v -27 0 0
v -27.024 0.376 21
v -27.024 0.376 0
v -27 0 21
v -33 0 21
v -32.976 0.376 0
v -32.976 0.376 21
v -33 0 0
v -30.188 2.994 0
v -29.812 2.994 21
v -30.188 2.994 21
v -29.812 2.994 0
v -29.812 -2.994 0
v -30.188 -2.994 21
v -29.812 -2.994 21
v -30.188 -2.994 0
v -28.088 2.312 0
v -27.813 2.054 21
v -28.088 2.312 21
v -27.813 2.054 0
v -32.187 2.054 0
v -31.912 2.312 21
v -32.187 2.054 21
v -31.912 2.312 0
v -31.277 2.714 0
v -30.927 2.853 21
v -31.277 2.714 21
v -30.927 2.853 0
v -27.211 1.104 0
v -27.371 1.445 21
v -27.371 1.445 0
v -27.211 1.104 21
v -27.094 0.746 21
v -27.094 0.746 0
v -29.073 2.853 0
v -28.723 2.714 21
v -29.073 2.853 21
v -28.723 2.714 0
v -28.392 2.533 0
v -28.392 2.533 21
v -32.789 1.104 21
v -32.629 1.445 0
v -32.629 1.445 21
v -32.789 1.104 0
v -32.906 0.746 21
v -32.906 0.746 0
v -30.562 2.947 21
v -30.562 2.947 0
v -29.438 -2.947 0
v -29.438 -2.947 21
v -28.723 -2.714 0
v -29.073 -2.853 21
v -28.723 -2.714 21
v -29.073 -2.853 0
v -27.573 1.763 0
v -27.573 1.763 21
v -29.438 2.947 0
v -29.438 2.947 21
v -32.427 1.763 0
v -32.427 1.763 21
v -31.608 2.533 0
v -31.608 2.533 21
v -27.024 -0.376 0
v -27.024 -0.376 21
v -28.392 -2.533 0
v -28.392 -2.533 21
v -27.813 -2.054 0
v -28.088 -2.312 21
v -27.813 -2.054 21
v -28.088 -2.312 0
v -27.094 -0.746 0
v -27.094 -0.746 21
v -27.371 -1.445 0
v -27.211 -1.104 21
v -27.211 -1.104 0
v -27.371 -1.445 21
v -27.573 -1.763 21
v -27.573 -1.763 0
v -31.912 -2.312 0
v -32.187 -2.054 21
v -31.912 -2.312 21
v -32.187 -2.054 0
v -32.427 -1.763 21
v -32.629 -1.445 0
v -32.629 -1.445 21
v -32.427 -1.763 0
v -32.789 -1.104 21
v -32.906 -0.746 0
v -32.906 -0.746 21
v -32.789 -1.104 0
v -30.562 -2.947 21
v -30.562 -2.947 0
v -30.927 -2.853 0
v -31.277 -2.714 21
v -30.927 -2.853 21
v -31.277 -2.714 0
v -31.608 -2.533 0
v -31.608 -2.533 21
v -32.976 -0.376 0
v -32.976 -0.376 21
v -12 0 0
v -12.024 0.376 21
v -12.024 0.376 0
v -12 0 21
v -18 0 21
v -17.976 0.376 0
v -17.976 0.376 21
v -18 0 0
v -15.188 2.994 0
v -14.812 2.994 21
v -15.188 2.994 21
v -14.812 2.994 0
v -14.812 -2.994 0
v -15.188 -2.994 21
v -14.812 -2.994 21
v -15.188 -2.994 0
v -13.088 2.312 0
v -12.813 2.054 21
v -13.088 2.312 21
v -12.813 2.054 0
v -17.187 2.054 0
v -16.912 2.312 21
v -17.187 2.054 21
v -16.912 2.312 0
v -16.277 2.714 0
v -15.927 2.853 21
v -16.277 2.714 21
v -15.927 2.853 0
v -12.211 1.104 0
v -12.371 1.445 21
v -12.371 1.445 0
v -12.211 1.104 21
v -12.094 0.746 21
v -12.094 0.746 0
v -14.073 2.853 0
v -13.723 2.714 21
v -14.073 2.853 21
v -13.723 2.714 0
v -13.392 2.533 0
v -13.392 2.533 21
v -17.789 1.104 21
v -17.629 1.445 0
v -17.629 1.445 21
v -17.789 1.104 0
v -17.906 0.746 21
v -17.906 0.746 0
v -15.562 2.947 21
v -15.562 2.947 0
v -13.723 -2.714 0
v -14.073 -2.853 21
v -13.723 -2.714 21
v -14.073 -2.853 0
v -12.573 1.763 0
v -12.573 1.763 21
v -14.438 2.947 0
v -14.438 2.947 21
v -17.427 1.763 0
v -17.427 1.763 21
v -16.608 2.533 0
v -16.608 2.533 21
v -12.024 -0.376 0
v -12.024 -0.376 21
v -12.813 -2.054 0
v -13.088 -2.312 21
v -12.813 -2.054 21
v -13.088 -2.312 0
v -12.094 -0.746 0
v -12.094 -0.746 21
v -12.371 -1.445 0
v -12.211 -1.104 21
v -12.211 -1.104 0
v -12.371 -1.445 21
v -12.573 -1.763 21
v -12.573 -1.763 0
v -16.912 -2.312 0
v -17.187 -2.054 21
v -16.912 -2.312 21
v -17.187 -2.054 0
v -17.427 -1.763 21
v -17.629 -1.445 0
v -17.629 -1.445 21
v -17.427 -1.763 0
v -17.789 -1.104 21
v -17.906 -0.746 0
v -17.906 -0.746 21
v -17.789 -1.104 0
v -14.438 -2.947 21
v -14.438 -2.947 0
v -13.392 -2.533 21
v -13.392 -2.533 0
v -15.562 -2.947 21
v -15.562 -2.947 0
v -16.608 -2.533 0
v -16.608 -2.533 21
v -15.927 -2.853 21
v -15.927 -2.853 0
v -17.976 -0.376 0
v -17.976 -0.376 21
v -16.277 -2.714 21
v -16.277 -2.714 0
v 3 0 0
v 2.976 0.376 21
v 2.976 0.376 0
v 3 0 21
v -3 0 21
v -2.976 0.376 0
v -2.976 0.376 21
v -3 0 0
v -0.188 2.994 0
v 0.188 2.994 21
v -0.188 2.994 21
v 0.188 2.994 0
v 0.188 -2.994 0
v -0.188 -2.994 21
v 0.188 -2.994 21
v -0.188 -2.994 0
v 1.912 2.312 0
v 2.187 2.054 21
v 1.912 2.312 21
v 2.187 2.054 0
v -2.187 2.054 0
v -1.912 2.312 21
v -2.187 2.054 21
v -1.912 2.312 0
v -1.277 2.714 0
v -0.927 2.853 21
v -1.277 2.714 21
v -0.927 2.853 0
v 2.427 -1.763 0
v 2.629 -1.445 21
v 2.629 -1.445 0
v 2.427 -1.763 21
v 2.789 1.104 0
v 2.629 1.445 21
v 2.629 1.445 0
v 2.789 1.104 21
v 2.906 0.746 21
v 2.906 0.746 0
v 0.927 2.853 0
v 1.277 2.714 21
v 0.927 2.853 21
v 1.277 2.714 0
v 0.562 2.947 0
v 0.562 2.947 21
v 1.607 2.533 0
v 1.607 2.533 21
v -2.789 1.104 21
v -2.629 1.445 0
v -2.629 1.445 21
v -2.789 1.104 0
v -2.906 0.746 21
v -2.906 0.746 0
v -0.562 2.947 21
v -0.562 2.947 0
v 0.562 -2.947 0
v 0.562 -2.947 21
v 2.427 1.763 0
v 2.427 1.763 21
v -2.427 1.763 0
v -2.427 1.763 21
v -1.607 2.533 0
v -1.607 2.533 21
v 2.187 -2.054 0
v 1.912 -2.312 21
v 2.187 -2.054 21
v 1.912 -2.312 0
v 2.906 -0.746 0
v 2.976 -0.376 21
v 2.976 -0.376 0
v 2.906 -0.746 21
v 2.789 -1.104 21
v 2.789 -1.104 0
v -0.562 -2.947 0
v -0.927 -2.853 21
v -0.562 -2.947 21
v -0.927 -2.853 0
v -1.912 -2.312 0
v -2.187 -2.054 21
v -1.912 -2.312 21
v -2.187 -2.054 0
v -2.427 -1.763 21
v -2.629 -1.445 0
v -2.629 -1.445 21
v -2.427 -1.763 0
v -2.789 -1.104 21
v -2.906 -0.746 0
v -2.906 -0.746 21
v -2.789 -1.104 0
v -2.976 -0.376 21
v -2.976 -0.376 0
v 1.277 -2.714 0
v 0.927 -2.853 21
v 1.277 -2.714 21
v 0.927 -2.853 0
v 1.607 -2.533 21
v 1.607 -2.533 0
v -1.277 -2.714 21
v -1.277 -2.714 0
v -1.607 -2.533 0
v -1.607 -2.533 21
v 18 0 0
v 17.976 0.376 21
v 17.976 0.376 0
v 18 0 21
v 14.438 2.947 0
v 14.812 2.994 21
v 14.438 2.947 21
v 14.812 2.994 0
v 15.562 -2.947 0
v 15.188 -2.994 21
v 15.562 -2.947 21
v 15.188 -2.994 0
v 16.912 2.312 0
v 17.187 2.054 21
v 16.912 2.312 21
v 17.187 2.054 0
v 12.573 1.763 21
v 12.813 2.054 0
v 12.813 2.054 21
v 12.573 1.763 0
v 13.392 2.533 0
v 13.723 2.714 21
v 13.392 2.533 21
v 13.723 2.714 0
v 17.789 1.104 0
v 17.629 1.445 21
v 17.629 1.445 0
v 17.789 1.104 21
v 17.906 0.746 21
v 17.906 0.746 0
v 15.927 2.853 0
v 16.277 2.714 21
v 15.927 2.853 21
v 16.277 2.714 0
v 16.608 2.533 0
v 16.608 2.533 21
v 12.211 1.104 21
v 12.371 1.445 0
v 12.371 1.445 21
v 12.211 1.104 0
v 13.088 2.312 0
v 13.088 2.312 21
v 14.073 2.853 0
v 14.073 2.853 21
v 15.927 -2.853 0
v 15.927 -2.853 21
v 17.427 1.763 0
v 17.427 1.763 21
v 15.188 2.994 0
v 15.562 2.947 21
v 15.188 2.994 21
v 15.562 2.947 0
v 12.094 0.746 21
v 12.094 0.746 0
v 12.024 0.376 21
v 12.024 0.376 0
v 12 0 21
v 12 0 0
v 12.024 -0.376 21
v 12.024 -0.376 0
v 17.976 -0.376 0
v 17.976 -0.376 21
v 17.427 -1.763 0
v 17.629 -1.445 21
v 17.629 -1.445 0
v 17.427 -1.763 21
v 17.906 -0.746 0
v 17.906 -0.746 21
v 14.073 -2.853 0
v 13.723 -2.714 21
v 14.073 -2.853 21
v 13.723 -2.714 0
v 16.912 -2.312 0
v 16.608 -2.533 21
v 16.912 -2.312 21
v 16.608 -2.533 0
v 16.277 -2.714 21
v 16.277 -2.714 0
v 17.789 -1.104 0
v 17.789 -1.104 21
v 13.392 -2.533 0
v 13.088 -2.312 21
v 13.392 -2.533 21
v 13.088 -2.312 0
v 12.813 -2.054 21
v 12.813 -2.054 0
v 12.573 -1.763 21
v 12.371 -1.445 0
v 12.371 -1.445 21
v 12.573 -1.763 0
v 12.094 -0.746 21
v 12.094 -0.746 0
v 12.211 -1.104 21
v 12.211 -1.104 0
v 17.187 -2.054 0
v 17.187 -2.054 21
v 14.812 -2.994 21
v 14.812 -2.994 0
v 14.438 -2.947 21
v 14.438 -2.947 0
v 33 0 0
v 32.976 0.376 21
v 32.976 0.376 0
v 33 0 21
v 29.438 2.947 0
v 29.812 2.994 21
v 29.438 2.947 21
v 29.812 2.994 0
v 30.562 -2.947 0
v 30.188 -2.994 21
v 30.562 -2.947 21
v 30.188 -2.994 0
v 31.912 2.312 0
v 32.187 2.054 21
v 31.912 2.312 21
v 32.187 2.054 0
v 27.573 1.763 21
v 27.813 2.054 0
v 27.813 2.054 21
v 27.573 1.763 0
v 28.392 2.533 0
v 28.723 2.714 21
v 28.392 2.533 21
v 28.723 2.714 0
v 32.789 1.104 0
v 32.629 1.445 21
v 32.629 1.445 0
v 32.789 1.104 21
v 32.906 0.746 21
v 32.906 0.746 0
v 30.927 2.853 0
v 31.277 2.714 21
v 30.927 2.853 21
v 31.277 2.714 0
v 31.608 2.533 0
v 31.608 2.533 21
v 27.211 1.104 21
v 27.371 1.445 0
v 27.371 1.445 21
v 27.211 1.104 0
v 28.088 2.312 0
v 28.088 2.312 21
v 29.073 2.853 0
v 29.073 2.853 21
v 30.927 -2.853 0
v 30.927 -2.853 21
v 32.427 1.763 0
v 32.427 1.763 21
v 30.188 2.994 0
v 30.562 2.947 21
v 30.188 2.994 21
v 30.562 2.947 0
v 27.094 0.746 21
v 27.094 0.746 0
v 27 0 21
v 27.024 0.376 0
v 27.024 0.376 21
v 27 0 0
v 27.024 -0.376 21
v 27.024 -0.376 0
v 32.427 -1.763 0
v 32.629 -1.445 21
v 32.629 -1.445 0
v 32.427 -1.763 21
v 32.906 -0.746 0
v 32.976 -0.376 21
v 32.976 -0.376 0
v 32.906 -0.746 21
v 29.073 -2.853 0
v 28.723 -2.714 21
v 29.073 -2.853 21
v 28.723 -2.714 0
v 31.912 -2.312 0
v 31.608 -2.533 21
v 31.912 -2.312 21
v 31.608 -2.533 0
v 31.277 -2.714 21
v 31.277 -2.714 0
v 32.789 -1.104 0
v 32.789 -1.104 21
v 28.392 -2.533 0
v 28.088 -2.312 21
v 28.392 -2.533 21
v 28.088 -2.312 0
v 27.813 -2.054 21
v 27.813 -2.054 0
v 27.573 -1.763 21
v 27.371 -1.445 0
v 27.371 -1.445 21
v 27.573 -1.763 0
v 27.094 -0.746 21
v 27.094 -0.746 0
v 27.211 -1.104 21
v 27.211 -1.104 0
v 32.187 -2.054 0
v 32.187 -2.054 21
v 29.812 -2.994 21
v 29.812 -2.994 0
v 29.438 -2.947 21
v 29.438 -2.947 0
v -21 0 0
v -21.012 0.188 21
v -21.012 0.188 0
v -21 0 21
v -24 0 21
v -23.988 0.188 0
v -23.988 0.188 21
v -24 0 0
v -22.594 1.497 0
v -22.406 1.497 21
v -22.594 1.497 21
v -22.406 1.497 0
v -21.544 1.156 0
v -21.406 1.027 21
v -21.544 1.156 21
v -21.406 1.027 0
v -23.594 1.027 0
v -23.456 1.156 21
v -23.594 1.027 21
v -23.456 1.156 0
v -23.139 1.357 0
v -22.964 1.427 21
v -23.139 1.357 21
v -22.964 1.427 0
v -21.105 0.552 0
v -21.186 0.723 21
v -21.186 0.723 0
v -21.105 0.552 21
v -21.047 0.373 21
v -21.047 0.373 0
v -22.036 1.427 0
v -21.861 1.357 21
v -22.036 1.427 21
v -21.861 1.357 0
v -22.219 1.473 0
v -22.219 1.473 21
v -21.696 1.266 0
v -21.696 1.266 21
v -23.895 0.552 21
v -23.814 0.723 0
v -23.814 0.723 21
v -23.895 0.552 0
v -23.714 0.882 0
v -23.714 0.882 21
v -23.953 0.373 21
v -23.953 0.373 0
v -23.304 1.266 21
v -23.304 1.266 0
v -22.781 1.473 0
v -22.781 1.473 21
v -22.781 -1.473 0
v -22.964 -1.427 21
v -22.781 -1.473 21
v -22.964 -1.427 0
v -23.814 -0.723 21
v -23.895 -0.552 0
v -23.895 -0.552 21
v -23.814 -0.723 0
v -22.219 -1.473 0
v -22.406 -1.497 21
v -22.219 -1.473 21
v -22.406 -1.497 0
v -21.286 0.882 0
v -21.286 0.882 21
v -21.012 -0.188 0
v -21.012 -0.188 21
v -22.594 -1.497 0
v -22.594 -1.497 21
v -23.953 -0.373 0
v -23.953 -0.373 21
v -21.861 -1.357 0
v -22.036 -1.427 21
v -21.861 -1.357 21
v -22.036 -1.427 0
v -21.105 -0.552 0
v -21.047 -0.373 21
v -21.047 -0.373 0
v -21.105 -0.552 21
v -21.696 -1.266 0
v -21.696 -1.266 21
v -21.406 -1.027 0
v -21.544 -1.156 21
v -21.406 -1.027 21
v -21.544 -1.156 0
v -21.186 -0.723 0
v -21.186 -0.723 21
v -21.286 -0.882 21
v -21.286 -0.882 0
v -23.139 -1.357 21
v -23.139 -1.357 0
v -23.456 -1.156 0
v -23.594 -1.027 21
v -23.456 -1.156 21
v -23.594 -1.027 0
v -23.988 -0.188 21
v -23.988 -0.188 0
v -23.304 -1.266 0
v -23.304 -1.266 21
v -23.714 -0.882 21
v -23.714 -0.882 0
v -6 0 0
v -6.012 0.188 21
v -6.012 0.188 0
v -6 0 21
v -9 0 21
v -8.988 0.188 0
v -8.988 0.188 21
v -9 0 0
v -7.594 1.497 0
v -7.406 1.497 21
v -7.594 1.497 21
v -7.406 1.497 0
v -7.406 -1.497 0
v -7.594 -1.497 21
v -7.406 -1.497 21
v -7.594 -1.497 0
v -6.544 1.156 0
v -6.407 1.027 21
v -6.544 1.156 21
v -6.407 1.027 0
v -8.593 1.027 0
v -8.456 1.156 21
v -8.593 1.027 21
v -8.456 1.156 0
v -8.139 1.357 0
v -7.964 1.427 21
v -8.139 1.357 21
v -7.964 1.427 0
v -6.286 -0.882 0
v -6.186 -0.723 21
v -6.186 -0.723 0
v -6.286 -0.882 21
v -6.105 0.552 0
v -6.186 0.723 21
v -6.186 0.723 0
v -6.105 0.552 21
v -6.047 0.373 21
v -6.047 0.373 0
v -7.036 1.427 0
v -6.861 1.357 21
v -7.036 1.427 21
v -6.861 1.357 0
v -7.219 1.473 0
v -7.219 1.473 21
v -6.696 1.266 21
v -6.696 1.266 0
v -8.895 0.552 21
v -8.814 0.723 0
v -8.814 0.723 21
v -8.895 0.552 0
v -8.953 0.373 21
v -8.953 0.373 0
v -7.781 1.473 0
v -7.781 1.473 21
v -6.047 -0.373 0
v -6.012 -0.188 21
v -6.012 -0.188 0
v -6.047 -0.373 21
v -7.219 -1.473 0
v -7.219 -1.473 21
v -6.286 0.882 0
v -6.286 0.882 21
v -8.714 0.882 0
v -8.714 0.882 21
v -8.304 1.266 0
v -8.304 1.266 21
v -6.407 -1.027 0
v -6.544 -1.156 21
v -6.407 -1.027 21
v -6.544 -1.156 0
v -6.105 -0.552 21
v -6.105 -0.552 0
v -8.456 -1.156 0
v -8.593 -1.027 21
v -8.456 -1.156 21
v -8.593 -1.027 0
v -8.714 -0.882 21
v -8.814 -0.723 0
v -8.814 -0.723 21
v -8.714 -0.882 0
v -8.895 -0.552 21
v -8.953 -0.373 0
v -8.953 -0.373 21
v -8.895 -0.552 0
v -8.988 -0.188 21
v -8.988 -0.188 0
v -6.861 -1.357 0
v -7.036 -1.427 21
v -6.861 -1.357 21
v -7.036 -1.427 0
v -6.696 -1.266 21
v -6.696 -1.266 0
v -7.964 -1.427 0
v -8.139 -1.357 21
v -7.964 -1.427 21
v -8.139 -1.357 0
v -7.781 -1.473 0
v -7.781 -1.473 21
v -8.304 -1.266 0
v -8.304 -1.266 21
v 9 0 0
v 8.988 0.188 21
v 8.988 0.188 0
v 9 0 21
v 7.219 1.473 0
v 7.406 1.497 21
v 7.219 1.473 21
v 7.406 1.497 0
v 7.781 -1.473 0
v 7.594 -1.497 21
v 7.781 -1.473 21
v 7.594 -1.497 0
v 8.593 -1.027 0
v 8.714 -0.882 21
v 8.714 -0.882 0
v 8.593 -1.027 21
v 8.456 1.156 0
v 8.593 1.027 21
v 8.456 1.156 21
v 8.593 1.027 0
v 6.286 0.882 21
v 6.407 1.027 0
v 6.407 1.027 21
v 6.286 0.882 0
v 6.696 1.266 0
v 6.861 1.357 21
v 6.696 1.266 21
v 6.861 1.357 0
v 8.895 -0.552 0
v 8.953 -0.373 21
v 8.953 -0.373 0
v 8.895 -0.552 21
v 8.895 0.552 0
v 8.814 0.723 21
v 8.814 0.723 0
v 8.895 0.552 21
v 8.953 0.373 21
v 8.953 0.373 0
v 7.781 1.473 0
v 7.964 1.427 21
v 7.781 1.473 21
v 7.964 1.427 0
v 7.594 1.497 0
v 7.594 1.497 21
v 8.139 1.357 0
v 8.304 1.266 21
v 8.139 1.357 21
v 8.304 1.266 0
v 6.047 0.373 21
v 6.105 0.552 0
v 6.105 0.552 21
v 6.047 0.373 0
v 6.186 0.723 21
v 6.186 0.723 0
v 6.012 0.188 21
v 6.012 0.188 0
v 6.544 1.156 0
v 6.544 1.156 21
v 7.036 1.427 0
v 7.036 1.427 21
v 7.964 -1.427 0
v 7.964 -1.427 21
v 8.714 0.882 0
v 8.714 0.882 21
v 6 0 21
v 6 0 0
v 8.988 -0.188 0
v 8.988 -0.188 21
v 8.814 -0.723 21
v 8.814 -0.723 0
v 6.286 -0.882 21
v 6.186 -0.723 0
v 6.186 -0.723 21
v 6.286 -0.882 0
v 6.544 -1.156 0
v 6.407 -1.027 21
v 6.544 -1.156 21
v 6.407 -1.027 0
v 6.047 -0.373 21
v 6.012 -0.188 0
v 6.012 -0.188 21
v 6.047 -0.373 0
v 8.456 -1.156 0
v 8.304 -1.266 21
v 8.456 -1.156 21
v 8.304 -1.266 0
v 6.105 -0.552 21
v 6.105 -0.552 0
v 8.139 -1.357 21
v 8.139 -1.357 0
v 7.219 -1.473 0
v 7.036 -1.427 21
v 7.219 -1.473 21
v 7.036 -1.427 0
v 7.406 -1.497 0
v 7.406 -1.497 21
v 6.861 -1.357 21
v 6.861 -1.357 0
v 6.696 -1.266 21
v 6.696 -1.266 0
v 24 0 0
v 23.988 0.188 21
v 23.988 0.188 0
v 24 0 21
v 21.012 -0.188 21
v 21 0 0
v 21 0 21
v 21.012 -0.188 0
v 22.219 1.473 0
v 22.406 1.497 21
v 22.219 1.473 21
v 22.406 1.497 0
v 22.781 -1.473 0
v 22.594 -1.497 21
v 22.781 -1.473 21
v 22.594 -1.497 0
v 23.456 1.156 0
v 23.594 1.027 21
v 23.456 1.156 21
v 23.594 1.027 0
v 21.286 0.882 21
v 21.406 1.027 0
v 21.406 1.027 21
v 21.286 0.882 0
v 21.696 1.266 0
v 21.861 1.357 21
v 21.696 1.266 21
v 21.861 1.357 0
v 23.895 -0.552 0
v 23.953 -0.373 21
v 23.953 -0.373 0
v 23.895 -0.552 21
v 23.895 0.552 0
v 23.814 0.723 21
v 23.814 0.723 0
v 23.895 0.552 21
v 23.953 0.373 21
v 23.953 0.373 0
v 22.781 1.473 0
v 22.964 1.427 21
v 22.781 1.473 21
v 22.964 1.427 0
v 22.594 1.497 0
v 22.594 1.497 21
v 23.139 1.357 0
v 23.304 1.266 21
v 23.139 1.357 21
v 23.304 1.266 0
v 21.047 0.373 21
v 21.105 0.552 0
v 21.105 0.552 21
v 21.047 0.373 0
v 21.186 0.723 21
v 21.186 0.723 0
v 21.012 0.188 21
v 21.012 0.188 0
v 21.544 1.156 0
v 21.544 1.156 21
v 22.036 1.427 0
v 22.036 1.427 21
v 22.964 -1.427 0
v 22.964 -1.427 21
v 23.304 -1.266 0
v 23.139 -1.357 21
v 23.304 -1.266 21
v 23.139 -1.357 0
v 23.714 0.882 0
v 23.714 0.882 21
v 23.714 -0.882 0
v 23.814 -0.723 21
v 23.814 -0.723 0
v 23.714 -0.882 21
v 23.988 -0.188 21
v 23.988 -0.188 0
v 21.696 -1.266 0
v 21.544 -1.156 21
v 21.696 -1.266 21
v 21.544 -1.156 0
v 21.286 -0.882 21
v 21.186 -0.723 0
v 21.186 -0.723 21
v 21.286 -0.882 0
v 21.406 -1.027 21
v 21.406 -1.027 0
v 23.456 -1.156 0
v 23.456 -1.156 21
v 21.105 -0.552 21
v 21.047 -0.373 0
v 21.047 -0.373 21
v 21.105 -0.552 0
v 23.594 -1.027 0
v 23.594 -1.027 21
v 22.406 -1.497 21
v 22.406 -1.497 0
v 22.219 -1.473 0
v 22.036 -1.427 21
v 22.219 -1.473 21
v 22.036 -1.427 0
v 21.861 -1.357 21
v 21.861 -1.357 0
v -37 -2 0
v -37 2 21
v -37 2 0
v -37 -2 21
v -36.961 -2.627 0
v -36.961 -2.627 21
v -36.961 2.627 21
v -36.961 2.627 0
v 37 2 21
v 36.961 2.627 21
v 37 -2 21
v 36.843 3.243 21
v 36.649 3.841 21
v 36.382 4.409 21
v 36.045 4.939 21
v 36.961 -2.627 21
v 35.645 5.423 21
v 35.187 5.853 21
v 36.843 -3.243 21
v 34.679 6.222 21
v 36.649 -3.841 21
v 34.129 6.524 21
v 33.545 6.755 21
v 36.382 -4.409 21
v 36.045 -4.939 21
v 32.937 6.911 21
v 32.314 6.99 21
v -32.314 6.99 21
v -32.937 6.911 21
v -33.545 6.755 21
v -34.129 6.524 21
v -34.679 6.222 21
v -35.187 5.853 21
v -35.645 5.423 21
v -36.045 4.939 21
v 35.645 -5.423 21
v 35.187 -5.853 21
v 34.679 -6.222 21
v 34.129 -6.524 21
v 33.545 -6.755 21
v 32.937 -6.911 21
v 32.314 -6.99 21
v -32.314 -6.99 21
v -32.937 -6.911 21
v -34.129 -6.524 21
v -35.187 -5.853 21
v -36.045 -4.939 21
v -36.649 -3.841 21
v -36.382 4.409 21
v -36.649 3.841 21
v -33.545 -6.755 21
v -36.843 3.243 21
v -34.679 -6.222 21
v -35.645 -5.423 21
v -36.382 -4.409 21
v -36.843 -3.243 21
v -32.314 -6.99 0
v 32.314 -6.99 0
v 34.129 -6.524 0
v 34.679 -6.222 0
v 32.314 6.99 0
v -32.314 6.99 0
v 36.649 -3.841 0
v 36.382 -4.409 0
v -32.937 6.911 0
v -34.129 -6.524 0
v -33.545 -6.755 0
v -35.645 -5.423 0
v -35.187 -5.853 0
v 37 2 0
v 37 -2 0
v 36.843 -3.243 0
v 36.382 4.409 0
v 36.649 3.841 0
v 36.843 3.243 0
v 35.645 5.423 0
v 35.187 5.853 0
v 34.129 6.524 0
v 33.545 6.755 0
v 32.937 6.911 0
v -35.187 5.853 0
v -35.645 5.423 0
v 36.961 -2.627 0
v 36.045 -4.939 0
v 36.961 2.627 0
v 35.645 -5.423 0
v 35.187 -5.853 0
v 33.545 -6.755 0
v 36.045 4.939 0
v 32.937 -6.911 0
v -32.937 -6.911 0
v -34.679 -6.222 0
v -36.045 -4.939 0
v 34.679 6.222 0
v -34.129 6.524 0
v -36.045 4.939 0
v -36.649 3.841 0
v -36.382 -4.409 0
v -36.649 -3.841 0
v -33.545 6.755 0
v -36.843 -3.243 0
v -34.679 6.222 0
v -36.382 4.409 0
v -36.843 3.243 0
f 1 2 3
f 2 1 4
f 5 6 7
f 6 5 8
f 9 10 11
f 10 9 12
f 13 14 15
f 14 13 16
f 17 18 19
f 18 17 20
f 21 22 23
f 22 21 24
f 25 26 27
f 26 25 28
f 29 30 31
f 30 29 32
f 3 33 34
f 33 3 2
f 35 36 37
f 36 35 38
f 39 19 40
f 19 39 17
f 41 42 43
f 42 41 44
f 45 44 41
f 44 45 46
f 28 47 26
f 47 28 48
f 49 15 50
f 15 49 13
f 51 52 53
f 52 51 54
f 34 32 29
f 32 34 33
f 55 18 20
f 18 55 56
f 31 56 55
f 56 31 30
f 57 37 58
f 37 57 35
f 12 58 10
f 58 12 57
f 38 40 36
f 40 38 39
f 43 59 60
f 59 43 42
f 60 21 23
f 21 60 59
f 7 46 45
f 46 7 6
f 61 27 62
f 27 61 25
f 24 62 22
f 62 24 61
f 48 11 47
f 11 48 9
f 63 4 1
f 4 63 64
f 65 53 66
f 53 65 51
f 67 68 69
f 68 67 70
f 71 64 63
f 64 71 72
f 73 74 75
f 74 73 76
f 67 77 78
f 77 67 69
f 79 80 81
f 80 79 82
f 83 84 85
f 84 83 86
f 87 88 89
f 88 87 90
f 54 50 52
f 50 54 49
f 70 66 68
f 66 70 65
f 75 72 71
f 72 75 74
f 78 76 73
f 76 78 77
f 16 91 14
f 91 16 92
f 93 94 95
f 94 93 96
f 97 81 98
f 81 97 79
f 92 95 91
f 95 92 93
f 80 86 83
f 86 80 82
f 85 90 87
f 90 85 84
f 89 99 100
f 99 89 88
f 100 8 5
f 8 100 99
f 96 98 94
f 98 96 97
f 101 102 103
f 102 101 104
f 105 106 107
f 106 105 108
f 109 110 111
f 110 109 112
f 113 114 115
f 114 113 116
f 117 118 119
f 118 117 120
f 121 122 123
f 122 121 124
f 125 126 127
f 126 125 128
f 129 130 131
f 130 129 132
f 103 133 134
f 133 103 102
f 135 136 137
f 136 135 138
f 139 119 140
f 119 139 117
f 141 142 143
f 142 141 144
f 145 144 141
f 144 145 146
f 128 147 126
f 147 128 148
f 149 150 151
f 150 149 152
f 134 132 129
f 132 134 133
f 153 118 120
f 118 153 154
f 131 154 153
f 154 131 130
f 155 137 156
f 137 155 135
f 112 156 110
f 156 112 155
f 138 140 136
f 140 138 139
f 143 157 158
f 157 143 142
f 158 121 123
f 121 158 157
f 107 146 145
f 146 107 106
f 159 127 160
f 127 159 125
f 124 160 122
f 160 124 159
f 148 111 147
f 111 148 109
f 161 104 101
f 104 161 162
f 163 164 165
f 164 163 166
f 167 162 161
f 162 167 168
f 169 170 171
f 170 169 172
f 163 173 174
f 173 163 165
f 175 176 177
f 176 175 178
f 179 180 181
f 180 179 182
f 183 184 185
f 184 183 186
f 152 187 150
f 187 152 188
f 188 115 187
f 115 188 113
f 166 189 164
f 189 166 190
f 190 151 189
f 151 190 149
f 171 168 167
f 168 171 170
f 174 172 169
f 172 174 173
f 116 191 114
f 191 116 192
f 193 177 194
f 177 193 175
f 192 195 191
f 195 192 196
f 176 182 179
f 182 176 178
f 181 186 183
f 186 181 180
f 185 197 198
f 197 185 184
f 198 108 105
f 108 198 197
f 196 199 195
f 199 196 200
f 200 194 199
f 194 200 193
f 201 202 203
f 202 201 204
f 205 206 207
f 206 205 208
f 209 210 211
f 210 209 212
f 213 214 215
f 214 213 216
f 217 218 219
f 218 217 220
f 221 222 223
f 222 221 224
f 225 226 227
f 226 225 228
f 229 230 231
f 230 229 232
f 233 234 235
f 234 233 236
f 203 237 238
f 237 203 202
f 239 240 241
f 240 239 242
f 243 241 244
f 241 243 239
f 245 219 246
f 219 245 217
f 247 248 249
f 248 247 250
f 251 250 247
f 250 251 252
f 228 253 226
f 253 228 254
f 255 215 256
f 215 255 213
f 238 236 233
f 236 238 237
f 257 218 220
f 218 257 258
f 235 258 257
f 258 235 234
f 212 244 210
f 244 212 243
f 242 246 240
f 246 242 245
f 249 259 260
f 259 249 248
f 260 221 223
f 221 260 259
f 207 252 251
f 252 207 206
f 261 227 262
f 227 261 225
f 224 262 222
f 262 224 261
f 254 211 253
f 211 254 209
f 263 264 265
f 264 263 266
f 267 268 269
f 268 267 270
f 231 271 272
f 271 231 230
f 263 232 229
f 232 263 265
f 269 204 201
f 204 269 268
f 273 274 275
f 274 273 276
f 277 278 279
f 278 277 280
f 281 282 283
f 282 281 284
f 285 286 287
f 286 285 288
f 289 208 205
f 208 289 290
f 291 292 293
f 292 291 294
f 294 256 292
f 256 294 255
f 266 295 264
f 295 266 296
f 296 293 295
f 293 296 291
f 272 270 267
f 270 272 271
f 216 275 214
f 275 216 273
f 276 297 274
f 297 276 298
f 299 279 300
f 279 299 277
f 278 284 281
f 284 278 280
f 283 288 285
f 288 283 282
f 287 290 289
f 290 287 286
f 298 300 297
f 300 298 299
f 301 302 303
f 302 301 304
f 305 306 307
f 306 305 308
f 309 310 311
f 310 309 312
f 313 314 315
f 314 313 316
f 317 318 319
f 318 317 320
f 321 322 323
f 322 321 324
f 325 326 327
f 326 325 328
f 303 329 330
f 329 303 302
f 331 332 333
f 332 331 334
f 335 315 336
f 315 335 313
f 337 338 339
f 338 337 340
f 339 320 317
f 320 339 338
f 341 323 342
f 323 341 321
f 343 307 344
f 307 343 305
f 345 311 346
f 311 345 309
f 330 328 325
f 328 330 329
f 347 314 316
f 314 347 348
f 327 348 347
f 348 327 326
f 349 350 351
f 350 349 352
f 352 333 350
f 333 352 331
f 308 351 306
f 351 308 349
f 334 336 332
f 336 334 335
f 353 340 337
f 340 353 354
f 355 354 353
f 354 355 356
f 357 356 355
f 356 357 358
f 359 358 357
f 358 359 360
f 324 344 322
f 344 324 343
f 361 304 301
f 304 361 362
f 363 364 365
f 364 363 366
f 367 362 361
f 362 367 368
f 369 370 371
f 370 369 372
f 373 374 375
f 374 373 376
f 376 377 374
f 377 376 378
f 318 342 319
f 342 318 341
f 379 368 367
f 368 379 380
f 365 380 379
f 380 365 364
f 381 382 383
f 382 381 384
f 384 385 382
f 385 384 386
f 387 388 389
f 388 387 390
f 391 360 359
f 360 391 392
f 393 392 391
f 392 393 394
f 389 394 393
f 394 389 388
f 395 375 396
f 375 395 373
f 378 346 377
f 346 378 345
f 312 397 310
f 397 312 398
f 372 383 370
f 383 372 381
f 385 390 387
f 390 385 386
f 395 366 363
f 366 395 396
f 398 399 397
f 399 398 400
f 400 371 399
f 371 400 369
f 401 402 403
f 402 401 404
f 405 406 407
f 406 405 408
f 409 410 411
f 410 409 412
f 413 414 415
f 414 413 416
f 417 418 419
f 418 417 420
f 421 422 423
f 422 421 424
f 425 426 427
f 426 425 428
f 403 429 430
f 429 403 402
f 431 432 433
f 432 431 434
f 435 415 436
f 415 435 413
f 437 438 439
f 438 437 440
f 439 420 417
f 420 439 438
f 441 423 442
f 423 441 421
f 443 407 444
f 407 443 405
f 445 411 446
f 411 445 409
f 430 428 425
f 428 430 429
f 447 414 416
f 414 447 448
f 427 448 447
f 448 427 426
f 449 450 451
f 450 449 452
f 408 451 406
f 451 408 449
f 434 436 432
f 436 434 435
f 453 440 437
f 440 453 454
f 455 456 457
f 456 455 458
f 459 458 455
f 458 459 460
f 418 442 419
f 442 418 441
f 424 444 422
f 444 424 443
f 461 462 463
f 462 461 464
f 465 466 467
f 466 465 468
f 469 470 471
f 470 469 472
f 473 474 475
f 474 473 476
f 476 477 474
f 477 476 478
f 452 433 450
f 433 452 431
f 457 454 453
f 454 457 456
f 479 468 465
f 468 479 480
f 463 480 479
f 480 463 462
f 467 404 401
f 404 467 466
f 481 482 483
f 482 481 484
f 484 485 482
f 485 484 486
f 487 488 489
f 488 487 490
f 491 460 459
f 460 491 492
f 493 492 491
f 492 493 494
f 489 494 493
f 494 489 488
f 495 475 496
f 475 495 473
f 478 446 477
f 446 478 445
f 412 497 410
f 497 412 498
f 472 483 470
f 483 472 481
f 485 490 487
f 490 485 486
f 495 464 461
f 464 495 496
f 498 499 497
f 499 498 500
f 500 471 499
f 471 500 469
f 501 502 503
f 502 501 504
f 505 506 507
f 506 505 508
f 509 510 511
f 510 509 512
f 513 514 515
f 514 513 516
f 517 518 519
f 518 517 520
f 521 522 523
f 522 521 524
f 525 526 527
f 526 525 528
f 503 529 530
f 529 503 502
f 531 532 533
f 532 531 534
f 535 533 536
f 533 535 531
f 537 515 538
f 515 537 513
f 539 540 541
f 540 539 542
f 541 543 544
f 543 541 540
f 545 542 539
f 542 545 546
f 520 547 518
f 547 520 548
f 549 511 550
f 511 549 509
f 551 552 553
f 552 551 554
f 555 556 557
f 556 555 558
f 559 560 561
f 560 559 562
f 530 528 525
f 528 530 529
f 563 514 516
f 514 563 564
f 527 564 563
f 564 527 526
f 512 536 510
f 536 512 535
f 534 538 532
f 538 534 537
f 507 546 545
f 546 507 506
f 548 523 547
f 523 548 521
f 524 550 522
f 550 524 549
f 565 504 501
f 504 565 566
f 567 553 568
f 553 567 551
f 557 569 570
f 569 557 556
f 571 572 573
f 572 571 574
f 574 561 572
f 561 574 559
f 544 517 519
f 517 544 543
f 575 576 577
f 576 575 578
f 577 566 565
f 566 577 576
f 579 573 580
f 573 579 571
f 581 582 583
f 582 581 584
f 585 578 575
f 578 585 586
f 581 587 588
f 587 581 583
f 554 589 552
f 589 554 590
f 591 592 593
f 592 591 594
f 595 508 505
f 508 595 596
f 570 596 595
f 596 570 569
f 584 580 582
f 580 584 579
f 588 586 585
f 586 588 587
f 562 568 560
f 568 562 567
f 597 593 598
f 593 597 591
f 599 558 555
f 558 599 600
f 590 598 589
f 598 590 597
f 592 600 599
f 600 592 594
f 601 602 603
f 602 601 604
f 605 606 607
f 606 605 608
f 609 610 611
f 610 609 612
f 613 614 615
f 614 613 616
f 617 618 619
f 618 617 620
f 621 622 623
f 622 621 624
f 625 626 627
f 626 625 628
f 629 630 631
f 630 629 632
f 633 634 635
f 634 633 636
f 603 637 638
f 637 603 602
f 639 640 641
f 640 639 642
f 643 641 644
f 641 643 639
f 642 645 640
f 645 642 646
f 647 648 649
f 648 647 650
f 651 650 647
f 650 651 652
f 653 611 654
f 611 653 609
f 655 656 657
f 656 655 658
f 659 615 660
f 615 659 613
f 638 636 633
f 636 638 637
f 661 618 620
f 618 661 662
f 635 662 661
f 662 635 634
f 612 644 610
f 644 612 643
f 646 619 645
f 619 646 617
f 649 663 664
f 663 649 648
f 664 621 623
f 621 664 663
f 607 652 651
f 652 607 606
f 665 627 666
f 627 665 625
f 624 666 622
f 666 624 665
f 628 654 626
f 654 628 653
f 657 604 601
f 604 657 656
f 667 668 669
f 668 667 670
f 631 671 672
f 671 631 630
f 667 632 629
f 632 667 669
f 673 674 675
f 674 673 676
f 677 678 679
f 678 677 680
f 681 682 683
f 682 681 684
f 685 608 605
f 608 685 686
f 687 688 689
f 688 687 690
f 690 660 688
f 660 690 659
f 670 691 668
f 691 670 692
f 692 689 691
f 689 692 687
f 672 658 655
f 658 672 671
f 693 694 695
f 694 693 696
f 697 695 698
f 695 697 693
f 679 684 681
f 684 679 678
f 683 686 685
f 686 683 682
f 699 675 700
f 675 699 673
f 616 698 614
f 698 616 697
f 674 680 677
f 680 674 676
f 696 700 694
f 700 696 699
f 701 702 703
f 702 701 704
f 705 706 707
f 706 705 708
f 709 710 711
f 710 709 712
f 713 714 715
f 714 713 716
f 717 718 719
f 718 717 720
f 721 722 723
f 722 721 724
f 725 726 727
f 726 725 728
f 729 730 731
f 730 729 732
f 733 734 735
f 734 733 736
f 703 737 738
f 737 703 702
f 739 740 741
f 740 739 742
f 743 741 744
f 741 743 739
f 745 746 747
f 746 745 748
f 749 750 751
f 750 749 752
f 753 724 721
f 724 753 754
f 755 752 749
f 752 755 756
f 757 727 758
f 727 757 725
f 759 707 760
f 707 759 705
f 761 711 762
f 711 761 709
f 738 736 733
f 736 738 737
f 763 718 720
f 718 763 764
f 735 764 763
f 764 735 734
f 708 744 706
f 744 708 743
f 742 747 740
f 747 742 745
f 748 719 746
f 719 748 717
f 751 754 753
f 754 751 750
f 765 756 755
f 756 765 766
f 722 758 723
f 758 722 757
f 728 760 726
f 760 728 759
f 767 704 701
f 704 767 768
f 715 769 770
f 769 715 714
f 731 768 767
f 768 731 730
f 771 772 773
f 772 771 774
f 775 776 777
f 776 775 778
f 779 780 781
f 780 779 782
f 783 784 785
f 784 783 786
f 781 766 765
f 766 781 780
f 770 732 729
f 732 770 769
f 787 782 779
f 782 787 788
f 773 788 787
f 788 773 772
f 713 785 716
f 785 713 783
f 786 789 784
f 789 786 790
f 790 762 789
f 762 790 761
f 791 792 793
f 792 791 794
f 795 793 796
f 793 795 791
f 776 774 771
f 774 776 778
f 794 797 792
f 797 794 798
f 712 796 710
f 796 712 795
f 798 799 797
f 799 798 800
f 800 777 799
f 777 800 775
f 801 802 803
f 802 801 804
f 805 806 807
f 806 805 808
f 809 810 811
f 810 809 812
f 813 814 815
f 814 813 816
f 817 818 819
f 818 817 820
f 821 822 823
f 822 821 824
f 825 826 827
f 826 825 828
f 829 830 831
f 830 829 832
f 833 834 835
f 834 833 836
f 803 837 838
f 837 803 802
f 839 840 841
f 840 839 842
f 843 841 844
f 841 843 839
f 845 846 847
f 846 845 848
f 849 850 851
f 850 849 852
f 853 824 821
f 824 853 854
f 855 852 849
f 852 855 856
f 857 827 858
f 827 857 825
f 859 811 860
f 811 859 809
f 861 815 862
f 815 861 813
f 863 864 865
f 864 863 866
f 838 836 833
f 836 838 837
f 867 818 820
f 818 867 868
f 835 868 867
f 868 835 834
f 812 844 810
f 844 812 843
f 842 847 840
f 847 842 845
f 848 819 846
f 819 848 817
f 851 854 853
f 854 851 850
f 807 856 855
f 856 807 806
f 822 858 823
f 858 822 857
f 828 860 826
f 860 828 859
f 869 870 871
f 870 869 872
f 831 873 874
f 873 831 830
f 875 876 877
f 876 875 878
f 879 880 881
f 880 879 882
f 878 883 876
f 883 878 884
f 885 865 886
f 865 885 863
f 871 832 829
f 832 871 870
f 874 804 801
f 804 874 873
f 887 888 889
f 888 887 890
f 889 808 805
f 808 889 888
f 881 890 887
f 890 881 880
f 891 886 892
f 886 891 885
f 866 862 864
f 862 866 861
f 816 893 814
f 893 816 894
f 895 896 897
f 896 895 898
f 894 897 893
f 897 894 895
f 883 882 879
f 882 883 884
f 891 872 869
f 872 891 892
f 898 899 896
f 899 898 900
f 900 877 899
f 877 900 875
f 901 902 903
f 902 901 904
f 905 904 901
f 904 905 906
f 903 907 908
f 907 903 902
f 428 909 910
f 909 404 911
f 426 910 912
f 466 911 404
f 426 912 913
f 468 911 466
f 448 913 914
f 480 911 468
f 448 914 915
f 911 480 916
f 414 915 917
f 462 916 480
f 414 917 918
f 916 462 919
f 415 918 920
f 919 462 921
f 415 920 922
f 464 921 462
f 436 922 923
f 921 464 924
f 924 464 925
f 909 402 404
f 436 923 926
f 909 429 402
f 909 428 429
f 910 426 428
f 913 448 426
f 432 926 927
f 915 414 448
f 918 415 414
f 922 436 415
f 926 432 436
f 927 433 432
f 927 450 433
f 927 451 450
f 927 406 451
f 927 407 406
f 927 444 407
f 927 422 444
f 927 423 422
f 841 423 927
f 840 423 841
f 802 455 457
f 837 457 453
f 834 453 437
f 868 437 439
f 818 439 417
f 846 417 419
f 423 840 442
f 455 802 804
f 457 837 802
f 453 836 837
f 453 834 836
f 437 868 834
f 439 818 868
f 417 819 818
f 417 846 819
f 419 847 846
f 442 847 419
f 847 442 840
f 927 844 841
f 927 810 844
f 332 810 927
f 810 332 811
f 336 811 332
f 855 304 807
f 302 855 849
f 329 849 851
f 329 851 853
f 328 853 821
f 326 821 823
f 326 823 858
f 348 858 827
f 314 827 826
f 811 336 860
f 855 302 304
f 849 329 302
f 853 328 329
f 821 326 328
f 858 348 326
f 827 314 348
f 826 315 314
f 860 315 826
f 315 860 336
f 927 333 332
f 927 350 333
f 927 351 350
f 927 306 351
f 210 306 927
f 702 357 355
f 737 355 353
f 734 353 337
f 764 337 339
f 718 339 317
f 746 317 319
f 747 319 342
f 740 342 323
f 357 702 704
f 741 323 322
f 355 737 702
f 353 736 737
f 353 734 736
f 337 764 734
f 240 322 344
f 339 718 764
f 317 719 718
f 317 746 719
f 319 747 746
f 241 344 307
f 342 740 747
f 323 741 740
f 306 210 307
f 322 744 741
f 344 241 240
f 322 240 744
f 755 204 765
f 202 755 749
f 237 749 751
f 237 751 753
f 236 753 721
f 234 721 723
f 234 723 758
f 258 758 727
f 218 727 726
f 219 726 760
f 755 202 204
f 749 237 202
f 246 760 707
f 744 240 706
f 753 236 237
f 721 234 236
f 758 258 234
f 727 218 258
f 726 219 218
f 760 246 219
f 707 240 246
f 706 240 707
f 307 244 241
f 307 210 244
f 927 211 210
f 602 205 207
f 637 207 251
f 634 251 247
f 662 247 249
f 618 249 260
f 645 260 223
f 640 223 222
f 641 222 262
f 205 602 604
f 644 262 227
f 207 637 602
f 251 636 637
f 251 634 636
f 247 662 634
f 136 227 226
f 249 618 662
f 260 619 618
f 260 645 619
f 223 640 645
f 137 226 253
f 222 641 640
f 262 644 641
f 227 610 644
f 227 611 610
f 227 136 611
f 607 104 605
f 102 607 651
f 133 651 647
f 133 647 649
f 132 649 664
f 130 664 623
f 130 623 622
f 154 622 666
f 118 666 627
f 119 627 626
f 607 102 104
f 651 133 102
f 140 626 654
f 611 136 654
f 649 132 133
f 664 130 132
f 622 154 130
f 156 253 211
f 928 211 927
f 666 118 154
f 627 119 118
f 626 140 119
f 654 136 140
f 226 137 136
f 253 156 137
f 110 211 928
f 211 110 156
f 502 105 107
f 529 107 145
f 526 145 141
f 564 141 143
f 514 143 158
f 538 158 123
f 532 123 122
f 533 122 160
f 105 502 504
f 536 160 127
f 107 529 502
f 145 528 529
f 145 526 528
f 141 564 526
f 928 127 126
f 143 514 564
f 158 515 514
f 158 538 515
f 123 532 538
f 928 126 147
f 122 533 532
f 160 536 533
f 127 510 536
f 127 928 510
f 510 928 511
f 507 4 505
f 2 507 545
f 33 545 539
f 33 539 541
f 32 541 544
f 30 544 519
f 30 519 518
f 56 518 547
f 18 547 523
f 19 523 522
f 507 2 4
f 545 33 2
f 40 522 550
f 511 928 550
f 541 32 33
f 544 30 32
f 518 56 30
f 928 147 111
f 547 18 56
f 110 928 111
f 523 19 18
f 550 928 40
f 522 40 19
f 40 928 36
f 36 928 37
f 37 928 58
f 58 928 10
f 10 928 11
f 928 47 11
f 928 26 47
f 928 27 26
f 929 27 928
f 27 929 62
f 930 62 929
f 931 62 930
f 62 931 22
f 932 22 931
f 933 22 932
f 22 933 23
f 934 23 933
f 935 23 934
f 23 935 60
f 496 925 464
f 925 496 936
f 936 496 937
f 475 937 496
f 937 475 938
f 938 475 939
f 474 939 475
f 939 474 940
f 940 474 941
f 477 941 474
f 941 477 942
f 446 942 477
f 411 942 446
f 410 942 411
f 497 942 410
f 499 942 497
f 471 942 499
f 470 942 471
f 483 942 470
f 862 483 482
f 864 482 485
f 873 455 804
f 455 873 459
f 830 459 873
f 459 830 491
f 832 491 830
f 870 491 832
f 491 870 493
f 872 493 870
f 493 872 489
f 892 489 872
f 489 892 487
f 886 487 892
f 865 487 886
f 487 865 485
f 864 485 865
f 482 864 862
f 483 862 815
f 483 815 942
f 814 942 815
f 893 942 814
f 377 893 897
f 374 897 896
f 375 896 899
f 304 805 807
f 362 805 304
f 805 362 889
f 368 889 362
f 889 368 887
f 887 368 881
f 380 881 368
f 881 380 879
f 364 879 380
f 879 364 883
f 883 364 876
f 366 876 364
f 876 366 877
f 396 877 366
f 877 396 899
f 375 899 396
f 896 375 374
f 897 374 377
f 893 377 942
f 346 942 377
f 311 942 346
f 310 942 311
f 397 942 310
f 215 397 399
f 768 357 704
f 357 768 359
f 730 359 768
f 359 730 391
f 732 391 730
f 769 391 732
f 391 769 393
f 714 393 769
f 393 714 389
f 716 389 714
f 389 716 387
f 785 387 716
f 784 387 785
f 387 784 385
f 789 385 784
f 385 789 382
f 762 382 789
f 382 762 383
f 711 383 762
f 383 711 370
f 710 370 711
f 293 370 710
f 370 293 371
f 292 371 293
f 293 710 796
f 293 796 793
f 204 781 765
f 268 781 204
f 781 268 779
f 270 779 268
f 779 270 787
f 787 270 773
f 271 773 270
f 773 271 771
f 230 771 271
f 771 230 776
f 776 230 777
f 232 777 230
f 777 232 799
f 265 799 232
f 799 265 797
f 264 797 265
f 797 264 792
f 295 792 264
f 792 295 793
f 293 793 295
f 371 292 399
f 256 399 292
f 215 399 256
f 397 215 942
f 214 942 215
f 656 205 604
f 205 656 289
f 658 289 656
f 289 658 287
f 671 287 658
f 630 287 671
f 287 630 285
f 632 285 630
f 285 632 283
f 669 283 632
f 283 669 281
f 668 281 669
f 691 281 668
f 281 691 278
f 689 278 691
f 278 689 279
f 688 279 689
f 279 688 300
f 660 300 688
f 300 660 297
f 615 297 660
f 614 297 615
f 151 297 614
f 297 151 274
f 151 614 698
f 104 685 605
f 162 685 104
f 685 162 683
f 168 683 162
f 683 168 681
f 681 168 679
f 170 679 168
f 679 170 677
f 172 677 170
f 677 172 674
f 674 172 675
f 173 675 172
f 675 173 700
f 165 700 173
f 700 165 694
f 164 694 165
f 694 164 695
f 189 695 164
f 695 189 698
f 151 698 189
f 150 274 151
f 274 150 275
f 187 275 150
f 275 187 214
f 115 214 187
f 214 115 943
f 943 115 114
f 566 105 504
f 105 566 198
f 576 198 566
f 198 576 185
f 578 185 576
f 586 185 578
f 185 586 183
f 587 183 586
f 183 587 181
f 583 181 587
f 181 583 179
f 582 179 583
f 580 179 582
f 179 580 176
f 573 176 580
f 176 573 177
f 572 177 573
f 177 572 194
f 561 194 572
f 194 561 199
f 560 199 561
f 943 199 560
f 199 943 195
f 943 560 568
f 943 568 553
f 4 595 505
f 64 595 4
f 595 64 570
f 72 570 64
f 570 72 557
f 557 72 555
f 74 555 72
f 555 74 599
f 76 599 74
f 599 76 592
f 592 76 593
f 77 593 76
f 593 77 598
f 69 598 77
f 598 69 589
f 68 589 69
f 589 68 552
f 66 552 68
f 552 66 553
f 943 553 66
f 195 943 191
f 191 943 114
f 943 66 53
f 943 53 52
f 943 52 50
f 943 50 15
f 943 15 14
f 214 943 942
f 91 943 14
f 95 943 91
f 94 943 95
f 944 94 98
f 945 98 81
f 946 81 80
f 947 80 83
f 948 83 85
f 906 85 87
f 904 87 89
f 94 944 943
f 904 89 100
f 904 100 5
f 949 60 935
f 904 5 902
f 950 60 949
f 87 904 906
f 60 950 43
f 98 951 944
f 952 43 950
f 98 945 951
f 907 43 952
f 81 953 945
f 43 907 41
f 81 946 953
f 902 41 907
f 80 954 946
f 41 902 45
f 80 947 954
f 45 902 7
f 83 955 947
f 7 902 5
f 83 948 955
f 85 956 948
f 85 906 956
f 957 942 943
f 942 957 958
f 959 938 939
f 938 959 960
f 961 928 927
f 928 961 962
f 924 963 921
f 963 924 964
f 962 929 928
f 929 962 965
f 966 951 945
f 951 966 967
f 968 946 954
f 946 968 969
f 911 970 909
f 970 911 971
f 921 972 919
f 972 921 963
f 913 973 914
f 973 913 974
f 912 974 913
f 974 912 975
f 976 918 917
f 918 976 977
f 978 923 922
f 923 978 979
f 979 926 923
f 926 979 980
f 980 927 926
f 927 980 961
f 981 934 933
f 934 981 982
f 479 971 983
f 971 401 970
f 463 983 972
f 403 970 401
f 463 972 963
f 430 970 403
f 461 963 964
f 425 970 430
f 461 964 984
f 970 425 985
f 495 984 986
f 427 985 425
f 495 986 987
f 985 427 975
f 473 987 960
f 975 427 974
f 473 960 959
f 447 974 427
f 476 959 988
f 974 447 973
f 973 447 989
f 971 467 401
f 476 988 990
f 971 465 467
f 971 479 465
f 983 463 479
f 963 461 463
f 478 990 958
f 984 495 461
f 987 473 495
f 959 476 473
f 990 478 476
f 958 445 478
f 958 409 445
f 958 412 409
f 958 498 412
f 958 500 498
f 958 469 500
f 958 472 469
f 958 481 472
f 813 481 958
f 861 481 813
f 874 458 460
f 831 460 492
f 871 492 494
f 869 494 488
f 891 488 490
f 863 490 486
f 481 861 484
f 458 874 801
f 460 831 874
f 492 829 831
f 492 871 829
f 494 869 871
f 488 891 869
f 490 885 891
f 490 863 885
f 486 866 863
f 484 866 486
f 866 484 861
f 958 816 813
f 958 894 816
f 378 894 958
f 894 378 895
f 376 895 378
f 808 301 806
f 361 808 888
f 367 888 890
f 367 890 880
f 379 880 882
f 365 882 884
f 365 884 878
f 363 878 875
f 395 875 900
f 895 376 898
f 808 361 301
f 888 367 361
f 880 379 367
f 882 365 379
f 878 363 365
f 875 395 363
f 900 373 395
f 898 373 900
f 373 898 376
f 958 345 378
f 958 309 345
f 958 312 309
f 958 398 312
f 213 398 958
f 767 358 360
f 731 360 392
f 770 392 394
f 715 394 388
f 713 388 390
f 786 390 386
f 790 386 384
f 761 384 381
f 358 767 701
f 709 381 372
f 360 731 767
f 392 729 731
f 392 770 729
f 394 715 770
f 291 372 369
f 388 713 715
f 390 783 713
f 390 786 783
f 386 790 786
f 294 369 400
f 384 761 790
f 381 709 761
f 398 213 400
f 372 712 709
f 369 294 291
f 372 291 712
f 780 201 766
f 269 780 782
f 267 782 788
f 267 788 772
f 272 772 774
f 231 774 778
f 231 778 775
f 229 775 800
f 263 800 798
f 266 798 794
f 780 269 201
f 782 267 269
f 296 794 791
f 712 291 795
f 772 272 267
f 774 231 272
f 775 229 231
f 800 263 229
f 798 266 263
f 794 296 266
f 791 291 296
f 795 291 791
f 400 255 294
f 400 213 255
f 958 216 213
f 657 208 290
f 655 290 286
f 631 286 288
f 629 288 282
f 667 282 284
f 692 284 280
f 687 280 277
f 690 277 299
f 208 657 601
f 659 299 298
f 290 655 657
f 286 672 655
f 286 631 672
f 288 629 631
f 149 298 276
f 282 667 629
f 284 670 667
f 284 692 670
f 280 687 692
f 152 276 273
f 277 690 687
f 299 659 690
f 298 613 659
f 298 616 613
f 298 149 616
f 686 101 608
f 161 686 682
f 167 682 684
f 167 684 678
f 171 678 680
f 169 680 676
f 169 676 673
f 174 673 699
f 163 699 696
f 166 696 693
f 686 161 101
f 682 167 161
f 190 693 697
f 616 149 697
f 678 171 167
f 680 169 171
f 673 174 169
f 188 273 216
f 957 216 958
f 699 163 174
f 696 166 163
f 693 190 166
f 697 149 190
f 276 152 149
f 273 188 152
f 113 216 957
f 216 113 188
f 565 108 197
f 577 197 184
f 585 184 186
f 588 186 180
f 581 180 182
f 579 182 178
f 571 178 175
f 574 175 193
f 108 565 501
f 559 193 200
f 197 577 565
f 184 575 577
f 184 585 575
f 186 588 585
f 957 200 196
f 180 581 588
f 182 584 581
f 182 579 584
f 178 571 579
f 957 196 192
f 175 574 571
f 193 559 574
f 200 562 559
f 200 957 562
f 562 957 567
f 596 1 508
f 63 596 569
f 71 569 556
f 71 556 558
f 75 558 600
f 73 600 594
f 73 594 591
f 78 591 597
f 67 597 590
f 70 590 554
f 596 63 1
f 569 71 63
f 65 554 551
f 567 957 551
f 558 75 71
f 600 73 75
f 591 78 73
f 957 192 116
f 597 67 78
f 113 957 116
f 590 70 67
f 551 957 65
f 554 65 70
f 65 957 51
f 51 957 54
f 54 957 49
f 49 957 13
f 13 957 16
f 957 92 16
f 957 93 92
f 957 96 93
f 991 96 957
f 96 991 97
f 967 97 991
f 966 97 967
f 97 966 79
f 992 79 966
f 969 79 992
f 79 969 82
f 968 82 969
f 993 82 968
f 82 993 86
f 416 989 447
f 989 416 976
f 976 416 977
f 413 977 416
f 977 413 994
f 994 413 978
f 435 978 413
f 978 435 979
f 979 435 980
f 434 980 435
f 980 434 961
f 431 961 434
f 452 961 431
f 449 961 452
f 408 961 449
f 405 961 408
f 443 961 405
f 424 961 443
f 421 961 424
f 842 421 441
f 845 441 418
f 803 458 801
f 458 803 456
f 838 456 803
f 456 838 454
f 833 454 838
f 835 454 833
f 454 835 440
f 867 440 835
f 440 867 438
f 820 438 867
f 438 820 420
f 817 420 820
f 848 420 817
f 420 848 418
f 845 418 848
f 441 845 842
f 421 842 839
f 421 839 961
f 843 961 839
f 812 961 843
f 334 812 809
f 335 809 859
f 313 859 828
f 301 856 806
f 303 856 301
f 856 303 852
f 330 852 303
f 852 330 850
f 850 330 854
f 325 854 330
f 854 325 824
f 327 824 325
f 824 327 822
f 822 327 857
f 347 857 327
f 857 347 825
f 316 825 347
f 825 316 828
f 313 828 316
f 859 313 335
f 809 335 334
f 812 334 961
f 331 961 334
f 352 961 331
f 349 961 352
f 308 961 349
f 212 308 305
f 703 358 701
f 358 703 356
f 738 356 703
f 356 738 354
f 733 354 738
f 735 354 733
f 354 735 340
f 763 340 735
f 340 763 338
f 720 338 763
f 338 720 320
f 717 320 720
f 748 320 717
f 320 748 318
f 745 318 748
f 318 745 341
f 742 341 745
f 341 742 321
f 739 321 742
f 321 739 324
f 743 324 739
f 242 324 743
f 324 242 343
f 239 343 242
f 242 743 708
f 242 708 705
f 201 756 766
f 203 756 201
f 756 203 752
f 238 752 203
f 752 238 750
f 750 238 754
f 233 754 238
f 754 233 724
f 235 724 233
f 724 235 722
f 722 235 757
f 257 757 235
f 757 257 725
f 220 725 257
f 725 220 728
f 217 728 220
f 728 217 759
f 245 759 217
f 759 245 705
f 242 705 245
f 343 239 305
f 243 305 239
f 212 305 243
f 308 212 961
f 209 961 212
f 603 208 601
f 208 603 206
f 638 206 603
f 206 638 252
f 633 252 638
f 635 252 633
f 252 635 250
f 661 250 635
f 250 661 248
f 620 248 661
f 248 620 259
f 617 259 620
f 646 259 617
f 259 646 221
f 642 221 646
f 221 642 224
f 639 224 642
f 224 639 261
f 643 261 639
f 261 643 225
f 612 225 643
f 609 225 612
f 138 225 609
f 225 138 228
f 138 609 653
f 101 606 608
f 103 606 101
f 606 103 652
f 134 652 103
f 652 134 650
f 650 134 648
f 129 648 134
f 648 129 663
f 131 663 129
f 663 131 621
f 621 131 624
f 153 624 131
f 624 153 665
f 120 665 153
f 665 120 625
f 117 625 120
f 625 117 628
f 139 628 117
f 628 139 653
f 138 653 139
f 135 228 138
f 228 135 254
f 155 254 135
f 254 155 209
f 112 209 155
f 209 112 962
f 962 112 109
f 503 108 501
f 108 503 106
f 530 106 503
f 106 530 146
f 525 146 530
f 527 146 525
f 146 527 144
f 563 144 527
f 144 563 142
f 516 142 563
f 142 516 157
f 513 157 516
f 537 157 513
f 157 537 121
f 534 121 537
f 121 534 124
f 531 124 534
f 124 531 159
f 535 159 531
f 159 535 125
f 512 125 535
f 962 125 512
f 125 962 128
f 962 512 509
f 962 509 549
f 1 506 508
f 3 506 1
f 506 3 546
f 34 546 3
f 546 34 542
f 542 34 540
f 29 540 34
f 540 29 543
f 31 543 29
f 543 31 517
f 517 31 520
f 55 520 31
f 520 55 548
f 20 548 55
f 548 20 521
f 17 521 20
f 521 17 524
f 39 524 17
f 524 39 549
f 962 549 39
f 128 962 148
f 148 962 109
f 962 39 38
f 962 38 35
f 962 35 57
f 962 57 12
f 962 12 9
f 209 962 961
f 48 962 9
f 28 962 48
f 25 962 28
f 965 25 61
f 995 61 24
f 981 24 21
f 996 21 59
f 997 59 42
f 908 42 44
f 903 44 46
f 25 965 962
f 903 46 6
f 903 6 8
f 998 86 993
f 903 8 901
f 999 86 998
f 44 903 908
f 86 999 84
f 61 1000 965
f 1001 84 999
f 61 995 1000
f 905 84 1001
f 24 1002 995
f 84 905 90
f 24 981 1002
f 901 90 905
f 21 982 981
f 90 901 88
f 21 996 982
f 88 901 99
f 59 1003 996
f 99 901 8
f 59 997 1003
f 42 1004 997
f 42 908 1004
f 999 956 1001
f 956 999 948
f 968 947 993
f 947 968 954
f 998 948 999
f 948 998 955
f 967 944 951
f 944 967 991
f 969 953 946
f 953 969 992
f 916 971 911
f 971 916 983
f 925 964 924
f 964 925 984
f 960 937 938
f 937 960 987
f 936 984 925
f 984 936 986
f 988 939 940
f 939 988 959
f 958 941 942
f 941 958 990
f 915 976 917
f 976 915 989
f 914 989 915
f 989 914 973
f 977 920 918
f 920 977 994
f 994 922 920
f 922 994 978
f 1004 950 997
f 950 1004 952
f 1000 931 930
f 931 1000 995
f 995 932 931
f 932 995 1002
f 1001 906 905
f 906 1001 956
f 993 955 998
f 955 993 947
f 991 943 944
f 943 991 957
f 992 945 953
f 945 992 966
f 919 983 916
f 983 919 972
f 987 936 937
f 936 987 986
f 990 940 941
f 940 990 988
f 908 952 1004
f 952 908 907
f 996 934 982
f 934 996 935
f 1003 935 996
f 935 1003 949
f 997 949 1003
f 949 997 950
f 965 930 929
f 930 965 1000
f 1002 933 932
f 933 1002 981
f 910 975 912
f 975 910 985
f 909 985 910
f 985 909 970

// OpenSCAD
$fn = 50;


difference() {
	union() {
		translate(v = [0, 0, 0]) {
			rotate(a = [0, 0, 0]) {
				hull() {
					translate(v = [-32.0000000000, 2.0000000000, 0]) {
						rotate(a = [0, 0, 0]) {
							translate(v = [0, 0, 0]) {
								rotate(a = [0, 0, 0]) {
									cylinder(h = 21, r = 5);
								}
							}
						}
					}
					translate(v = [32.0000000000, 2.0000000000, 0]) {
						rotate(a = [0, 0, 0]) {
							translate(v = [0, 0, 0]) {
								rotate(a = [0, 0, 0]) {
									cylinder(h = 21, r = 5);
								}
							}
						}
					}
					translate(v = [-32.0000000000, -2.0000000000, 0]) {
						rotate(a = [0, 0, 0]) {
							translate(v = [0, 0, 0]) {
								rotate(a = [0, 0, 0]) {
									cylinder(h = 21, r = 5);
								}
							}
						}
					}
					translate(v = [32.0000000000, -2.0000000000, 0]) {
						rotate(a = [0, 0, 0]) {
							translate(v = [0, 0, 0]) {
								rotate(a = [0, 0, 0]) {
									cylinder(h = 21, r = 5);
								}
							}
						}
					}
				}
			}
		}
	}
	union() {
		translate(v = [-30.0000000000, 0.0000000000, 0]) {
			rotate(a = [0, 0, 0]) {
				translate(v = [0, 0, -50]) {
					rotate(a = [0, 0, 0]) {
						cylinder(h = 100, r = 3.0000000000);
					}
				}
			}
		}
		translate(v = [-15.0000000000, 0.0000000000, 0]) {
			rotate(a = [0, 0, 0]) {
				translate(v = [0, 0, -50]) {
					rotate(a = [0, 0, 0]) {
						cylinder(h = 100, r = 3.0000000000);
					}
				}
			}
		}
		translate(v = [0.0000000000, 0.0000000000, 0]) {
			rotate(a = [0, 0, 0]) {
				translate(v = [0, 0, -50]) {
					rotate(a = [0, 0, 0]) {
						cylinder(h = 100, r = 3.0000000000);
					}
				}
			}
		}
		translate(v = [15.0000000000, 0.0000000000, 0]) {
			rotate(a = [0, 0, 0]) {
				translate(v = [0, 0, -50]) {
					rotate(a = [0, 0, 0]) {
						cylinder(h = 100, r = 3.0000000000);
					}
				}
			}
		}
		translate(v = [30.0000000000, 0.0000000000, 0]) {
			rotate(a = [0, 0, 0]) {
				translate(v = [0, 0, -50]) {
					rotate(a = [0, 0, 0]) {
						cylinder(h = 100, r = 3.0000000000);
					}
				}
			}
		}
		translate(v = [-30.0000000000, 0.0000000000, 0]) {
			rotate(a = [0, 0, 0]) {
				translate(v = [0, 0, -50]) {
					rotate(a = [0, 0, 0]) {
						cylinder(h = 100, r = 1.5000000000);
					}
				}
			}
		}
		translate(v = [-22.5000000000, 0.0000000000, 0]) {
			rotate(a = [0, 0, 0]) {
				translate(v = [0, 0, -50]) {
					rotate(a = [0, 0, 0]) {
						cylinder(h = 100, r = 1.5000000000);
					}
				}
			}
		}
		translate(v = [-15.0000000000, 0.0000000000, 0]) {
			rotate(a = [0, 0, 0]) {
				translate(v = [0, 0, -50]) {
					rotate(a = [0, 0, 0]) {
						cylinder(h = 100, r = 1.5000000000);
					}
				}
			}
		}
		translate(v = [-7.5000000000, 0.0000000000, 0]) {
			rotate(a = [0, 0, 0]) {
				translate(v = [0, 0, -50]) {
					rotate(a = [0, 0, 0]) {
						cylinder(h = 100, r = 1.5000000000);
					}
				}
			}
		}
		translate(v = [0.0000000000, 0.0000000000, 0]) {
			rotate(a = [0, 0, 0]) {
				translate(v = [0, 0, -50]) {
					rotate(a = [0, 0, 0]) {
						cylinder(h = 100, r = 1.5000000000);
					}
				}
			}
		}
		translate(v = [7.5000000000, 0.0000000000, 0]) {
			rotate(a = [0, 0, 0]) {
				translate(v = [0, 0, -50]) {
					rotate(a = [0, 0, 0]) {
						cylinder(h = 100, r = 1.5000000000);
					}
				}
			}
		}
		translate(v = [15.0000000000, 0.0000000000, 0]) {
			rotate(a = [0, 0, 0]) {
				translate(v = [0, 0, -50]) {
					rotate(a = [0, 0, 0]) {
						cylinder(h = 100, r = 1.5000000000);
					}
				}
			}
		}
		translate(v = [22.5000000000, 0.0000000000, 0]) {
			rotate(a = [0, 0, 0]) {
				translate(v = [0, 0, -50]) {
					rotate(a = [0, 0, 0]) {
						cylinder(h = 100, r = 1.5000000000);
					}
				}
			}
		}
		translate(v = [30.0000000000, 0.0000000000, 0]) {
			rotate(a = [0, 0, 0]) {
				translate(v = [0, 0, -50]) {
					rotate(a = [0, 0, 0]) {
						cylinder(h = 100, r = 1.5000000000);
					}
				}
			}
		}
	}
}
